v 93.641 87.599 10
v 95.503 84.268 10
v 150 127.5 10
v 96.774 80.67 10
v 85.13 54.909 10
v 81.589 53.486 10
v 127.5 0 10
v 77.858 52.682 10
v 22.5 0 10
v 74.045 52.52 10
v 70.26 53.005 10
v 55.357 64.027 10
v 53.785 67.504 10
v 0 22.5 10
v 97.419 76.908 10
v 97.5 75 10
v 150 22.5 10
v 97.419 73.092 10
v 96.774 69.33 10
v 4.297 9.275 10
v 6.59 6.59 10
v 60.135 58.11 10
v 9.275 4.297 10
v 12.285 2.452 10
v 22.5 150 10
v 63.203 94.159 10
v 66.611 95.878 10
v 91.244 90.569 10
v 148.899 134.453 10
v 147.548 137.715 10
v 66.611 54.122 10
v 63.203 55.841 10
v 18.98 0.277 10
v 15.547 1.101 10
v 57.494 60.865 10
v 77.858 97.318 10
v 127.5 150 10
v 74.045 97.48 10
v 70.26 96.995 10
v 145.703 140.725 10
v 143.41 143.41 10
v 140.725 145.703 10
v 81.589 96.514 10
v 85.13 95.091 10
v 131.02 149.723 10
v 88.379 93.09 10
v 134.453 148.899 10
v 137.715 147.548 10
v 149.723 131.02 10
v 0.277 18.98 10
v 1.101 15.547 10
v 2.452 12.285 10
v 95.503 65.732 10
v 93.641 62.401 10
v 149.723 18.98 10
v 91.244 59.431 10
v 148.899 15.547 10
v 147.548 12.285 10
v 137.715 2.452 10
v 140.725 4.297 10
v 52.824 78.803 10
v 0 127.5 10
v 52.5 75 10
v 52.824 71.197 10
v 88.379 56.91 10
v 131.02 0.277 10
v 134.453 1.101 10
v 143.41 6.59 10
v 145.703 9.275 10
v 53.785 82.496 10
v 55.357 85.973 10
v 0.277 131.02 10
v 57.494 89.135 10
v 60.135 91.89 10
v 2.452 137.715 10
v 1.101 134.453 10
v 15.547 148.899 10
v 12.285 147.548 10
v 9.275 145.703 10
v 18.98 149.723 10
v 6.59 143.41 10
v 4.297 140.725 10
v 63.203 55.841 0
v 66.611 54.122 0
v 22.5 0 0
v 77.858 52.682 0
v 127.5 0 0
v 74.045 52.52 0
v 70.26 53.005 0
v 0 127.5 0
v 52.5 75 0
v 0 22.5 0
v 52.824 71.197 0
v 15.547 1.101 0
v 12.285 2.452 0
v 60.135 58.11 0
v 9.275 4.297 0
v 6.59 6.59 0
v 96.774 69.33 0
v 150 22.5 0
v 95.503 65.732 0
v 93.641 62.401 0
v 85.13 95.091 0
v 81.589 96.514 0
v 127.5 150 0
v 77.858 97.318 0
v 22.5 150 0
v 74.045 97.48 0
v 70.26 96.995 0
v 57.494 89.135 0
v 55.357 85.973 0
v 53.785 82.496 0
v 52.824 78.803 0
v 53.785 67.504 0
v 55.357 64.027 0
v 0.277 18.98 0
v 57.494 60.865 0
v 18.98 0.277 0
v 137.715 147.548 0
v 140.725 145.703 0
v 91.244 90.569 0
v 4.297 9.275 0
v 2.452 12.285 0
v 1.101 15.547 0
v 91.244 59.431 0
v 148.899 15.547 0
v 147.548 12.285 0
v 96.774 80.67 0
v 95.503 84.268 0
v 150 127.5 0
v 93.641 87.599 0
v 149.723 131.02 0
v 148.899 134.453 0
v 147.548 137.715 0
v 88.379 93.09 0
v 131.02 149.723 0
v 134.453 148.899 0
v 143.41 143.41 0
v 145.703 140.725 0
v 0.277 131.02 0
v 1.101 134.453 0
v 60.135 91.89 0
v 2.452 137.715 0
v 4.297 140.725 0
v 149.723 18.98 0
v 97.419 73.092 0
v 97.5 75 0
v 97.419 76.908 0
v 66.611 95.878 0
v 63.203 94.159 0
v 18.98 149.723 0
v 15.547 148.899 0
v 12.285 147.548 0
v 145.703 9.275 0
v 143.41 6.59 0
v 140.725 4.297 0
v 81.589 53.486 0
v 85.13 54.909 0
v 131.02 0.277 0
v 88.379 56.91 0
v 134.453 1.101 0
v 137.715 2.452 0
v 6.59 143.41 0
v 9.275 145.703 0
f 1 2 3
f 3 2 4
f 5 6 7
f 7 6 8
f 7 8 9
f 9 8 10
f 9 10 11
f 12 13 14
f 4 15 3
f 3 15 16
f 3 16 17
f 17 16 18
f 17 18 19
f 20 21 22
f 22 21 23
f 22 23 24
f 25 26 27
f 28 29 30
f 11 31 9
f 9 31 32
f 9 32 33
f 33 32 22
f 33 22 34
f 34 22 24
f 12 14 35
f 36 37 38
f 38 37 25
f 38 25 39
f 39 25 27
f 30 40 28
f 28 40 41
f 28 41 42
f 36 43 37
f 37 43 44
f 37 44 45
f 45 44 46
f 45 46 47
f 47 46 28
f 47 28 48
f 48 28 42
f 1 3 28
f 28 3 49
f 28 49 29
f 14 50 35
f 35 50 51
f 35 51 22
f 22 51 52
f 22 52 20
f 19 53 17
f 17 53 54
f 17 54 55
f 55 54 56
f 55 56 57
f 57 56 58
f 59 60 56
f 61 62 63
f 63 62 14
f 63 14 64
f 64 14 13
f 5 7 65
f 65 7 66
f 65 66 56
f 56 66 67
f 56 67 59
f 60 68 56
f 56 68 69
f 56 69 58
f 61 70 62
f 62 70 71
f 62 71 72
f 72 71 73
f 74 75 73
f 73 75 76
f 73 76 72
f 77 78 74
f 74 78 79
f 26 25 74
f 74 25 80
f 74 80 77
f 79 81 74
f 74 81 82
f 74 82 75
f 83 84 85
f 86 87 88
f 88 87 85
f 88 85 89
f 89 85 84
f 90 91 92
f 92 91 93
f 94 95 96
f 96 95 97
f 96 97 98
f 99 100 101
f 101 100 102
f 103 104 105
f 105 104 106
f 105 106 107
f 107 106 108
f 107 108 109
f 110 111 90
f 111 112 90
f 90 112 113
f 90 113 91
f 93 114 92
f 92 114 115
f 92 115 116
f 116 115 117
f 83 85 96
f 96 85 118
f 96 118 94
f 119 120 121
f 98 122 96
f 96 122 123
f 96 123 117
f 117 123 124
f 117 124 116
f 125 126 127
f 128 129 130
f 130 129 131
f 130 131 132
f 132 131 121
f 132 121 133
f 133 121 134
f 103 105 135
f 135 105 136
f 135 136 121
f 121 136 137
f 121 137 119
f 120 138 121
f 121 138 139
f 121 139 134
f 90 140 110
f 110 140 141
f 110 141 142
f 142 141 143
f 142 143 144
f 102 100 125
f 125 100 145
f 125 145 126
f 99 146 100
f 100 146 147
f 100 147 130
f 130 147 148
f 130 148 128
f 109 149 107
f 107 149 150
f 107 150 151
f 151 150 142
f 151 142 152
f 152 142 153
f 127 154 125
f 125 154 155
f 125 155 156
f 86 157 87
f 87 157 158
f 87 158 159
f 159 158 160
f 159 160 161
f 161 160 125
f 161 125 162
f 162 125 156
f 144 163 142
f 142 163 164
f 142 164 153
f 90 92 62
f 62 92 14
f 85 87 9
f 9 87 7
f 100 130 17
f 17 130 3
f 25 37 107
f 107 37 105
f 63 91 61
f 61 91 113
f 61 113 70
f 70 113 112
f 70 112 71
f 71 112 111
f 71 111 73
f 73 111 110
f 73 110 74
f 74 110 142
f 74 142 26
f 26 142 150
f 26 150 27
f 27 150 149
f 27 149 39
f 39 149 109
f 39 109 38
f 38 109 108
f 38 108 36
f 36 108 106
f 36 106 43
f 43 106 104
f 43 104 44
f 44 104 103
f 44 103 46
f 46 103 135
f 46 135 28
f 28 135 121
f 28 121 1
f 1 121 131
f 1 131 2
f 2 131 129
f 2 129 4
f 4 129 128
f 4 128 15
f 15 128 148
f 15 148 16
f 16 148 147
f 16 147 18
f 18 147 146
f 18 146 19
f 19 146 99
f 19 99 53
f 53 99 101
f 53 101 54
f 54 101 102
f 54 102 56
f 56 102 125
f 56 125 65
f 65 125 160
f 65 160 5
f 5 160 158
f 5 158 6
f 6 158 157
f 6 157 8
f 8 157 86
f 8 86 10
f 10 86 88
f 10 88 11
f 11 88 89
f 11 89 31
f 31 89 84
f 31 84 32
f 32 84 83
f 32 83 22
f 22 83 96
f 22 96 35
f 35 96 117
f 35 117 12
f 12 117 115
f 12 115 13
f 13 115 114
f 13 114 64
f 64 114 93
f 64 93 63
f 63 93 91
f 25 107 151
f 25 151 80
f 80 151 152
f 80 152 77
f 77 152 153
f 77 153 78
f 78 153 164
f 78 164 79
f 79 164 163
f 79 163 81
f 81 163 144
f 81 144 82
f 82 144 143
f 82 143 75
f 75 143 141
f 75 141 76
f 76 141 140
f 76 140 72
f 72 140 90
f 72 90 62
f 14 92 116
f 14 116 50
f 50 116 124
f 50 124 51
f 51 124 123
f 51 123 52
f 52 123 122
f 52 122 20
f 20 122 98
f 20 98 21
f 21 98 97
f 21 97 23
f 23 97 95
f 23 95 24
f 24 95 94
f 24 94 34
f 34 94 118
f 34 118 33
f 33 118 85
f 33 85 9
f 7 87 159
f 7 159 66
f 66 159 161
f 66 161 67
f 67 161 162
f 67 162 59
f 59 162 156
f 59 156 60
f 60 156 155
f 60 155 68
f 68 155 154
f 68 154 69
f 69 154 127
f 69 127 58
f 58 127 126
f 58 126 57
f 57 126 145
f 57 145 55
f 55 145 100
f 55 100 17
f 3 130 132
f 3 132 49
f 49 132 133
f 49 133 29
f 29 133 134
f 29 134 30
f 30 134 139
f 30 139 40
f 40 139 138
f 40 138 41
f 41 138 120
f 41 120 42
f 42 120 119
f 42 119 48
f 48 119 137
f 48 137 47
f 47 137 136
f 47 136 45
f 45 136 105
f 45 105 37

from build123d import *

# Parameters (mm, degrees)
ESQUISSE1_W        = 150
ESQUISSE1_H        = 150
ESQUISSE1_R        = 22.5
BOSS_EXTRU_1_DEPTH = 10
CONG_1_R           = 22.5


with BuildPart() as part:
    # Esquisse1 → Boss.-Extru.1 (new body)
    with BuildSketch(Plane.XY):
        with Locations((75, 75)):
            Rectangle(ESQUISSE1_W, ESQUISSE1_H)
        with Locations((75, 75)):
            Circle(ESQUISSE1_R, mode=Mode.SUBTRACT)
    extrude(amount=BOSS_EXTRU_1_DEPTH)

    # Congé1
    cong_1_edges = [part.edges().sort_by_distance(p)[0] for p in [
        (0, 150, 5),
        (150, 150, 5),
        (150, 0, 5),
        (0, 0, 5),
    ]]
    fillet(cong_1_edges, radius=CONG_1_R)


solid = part.part
